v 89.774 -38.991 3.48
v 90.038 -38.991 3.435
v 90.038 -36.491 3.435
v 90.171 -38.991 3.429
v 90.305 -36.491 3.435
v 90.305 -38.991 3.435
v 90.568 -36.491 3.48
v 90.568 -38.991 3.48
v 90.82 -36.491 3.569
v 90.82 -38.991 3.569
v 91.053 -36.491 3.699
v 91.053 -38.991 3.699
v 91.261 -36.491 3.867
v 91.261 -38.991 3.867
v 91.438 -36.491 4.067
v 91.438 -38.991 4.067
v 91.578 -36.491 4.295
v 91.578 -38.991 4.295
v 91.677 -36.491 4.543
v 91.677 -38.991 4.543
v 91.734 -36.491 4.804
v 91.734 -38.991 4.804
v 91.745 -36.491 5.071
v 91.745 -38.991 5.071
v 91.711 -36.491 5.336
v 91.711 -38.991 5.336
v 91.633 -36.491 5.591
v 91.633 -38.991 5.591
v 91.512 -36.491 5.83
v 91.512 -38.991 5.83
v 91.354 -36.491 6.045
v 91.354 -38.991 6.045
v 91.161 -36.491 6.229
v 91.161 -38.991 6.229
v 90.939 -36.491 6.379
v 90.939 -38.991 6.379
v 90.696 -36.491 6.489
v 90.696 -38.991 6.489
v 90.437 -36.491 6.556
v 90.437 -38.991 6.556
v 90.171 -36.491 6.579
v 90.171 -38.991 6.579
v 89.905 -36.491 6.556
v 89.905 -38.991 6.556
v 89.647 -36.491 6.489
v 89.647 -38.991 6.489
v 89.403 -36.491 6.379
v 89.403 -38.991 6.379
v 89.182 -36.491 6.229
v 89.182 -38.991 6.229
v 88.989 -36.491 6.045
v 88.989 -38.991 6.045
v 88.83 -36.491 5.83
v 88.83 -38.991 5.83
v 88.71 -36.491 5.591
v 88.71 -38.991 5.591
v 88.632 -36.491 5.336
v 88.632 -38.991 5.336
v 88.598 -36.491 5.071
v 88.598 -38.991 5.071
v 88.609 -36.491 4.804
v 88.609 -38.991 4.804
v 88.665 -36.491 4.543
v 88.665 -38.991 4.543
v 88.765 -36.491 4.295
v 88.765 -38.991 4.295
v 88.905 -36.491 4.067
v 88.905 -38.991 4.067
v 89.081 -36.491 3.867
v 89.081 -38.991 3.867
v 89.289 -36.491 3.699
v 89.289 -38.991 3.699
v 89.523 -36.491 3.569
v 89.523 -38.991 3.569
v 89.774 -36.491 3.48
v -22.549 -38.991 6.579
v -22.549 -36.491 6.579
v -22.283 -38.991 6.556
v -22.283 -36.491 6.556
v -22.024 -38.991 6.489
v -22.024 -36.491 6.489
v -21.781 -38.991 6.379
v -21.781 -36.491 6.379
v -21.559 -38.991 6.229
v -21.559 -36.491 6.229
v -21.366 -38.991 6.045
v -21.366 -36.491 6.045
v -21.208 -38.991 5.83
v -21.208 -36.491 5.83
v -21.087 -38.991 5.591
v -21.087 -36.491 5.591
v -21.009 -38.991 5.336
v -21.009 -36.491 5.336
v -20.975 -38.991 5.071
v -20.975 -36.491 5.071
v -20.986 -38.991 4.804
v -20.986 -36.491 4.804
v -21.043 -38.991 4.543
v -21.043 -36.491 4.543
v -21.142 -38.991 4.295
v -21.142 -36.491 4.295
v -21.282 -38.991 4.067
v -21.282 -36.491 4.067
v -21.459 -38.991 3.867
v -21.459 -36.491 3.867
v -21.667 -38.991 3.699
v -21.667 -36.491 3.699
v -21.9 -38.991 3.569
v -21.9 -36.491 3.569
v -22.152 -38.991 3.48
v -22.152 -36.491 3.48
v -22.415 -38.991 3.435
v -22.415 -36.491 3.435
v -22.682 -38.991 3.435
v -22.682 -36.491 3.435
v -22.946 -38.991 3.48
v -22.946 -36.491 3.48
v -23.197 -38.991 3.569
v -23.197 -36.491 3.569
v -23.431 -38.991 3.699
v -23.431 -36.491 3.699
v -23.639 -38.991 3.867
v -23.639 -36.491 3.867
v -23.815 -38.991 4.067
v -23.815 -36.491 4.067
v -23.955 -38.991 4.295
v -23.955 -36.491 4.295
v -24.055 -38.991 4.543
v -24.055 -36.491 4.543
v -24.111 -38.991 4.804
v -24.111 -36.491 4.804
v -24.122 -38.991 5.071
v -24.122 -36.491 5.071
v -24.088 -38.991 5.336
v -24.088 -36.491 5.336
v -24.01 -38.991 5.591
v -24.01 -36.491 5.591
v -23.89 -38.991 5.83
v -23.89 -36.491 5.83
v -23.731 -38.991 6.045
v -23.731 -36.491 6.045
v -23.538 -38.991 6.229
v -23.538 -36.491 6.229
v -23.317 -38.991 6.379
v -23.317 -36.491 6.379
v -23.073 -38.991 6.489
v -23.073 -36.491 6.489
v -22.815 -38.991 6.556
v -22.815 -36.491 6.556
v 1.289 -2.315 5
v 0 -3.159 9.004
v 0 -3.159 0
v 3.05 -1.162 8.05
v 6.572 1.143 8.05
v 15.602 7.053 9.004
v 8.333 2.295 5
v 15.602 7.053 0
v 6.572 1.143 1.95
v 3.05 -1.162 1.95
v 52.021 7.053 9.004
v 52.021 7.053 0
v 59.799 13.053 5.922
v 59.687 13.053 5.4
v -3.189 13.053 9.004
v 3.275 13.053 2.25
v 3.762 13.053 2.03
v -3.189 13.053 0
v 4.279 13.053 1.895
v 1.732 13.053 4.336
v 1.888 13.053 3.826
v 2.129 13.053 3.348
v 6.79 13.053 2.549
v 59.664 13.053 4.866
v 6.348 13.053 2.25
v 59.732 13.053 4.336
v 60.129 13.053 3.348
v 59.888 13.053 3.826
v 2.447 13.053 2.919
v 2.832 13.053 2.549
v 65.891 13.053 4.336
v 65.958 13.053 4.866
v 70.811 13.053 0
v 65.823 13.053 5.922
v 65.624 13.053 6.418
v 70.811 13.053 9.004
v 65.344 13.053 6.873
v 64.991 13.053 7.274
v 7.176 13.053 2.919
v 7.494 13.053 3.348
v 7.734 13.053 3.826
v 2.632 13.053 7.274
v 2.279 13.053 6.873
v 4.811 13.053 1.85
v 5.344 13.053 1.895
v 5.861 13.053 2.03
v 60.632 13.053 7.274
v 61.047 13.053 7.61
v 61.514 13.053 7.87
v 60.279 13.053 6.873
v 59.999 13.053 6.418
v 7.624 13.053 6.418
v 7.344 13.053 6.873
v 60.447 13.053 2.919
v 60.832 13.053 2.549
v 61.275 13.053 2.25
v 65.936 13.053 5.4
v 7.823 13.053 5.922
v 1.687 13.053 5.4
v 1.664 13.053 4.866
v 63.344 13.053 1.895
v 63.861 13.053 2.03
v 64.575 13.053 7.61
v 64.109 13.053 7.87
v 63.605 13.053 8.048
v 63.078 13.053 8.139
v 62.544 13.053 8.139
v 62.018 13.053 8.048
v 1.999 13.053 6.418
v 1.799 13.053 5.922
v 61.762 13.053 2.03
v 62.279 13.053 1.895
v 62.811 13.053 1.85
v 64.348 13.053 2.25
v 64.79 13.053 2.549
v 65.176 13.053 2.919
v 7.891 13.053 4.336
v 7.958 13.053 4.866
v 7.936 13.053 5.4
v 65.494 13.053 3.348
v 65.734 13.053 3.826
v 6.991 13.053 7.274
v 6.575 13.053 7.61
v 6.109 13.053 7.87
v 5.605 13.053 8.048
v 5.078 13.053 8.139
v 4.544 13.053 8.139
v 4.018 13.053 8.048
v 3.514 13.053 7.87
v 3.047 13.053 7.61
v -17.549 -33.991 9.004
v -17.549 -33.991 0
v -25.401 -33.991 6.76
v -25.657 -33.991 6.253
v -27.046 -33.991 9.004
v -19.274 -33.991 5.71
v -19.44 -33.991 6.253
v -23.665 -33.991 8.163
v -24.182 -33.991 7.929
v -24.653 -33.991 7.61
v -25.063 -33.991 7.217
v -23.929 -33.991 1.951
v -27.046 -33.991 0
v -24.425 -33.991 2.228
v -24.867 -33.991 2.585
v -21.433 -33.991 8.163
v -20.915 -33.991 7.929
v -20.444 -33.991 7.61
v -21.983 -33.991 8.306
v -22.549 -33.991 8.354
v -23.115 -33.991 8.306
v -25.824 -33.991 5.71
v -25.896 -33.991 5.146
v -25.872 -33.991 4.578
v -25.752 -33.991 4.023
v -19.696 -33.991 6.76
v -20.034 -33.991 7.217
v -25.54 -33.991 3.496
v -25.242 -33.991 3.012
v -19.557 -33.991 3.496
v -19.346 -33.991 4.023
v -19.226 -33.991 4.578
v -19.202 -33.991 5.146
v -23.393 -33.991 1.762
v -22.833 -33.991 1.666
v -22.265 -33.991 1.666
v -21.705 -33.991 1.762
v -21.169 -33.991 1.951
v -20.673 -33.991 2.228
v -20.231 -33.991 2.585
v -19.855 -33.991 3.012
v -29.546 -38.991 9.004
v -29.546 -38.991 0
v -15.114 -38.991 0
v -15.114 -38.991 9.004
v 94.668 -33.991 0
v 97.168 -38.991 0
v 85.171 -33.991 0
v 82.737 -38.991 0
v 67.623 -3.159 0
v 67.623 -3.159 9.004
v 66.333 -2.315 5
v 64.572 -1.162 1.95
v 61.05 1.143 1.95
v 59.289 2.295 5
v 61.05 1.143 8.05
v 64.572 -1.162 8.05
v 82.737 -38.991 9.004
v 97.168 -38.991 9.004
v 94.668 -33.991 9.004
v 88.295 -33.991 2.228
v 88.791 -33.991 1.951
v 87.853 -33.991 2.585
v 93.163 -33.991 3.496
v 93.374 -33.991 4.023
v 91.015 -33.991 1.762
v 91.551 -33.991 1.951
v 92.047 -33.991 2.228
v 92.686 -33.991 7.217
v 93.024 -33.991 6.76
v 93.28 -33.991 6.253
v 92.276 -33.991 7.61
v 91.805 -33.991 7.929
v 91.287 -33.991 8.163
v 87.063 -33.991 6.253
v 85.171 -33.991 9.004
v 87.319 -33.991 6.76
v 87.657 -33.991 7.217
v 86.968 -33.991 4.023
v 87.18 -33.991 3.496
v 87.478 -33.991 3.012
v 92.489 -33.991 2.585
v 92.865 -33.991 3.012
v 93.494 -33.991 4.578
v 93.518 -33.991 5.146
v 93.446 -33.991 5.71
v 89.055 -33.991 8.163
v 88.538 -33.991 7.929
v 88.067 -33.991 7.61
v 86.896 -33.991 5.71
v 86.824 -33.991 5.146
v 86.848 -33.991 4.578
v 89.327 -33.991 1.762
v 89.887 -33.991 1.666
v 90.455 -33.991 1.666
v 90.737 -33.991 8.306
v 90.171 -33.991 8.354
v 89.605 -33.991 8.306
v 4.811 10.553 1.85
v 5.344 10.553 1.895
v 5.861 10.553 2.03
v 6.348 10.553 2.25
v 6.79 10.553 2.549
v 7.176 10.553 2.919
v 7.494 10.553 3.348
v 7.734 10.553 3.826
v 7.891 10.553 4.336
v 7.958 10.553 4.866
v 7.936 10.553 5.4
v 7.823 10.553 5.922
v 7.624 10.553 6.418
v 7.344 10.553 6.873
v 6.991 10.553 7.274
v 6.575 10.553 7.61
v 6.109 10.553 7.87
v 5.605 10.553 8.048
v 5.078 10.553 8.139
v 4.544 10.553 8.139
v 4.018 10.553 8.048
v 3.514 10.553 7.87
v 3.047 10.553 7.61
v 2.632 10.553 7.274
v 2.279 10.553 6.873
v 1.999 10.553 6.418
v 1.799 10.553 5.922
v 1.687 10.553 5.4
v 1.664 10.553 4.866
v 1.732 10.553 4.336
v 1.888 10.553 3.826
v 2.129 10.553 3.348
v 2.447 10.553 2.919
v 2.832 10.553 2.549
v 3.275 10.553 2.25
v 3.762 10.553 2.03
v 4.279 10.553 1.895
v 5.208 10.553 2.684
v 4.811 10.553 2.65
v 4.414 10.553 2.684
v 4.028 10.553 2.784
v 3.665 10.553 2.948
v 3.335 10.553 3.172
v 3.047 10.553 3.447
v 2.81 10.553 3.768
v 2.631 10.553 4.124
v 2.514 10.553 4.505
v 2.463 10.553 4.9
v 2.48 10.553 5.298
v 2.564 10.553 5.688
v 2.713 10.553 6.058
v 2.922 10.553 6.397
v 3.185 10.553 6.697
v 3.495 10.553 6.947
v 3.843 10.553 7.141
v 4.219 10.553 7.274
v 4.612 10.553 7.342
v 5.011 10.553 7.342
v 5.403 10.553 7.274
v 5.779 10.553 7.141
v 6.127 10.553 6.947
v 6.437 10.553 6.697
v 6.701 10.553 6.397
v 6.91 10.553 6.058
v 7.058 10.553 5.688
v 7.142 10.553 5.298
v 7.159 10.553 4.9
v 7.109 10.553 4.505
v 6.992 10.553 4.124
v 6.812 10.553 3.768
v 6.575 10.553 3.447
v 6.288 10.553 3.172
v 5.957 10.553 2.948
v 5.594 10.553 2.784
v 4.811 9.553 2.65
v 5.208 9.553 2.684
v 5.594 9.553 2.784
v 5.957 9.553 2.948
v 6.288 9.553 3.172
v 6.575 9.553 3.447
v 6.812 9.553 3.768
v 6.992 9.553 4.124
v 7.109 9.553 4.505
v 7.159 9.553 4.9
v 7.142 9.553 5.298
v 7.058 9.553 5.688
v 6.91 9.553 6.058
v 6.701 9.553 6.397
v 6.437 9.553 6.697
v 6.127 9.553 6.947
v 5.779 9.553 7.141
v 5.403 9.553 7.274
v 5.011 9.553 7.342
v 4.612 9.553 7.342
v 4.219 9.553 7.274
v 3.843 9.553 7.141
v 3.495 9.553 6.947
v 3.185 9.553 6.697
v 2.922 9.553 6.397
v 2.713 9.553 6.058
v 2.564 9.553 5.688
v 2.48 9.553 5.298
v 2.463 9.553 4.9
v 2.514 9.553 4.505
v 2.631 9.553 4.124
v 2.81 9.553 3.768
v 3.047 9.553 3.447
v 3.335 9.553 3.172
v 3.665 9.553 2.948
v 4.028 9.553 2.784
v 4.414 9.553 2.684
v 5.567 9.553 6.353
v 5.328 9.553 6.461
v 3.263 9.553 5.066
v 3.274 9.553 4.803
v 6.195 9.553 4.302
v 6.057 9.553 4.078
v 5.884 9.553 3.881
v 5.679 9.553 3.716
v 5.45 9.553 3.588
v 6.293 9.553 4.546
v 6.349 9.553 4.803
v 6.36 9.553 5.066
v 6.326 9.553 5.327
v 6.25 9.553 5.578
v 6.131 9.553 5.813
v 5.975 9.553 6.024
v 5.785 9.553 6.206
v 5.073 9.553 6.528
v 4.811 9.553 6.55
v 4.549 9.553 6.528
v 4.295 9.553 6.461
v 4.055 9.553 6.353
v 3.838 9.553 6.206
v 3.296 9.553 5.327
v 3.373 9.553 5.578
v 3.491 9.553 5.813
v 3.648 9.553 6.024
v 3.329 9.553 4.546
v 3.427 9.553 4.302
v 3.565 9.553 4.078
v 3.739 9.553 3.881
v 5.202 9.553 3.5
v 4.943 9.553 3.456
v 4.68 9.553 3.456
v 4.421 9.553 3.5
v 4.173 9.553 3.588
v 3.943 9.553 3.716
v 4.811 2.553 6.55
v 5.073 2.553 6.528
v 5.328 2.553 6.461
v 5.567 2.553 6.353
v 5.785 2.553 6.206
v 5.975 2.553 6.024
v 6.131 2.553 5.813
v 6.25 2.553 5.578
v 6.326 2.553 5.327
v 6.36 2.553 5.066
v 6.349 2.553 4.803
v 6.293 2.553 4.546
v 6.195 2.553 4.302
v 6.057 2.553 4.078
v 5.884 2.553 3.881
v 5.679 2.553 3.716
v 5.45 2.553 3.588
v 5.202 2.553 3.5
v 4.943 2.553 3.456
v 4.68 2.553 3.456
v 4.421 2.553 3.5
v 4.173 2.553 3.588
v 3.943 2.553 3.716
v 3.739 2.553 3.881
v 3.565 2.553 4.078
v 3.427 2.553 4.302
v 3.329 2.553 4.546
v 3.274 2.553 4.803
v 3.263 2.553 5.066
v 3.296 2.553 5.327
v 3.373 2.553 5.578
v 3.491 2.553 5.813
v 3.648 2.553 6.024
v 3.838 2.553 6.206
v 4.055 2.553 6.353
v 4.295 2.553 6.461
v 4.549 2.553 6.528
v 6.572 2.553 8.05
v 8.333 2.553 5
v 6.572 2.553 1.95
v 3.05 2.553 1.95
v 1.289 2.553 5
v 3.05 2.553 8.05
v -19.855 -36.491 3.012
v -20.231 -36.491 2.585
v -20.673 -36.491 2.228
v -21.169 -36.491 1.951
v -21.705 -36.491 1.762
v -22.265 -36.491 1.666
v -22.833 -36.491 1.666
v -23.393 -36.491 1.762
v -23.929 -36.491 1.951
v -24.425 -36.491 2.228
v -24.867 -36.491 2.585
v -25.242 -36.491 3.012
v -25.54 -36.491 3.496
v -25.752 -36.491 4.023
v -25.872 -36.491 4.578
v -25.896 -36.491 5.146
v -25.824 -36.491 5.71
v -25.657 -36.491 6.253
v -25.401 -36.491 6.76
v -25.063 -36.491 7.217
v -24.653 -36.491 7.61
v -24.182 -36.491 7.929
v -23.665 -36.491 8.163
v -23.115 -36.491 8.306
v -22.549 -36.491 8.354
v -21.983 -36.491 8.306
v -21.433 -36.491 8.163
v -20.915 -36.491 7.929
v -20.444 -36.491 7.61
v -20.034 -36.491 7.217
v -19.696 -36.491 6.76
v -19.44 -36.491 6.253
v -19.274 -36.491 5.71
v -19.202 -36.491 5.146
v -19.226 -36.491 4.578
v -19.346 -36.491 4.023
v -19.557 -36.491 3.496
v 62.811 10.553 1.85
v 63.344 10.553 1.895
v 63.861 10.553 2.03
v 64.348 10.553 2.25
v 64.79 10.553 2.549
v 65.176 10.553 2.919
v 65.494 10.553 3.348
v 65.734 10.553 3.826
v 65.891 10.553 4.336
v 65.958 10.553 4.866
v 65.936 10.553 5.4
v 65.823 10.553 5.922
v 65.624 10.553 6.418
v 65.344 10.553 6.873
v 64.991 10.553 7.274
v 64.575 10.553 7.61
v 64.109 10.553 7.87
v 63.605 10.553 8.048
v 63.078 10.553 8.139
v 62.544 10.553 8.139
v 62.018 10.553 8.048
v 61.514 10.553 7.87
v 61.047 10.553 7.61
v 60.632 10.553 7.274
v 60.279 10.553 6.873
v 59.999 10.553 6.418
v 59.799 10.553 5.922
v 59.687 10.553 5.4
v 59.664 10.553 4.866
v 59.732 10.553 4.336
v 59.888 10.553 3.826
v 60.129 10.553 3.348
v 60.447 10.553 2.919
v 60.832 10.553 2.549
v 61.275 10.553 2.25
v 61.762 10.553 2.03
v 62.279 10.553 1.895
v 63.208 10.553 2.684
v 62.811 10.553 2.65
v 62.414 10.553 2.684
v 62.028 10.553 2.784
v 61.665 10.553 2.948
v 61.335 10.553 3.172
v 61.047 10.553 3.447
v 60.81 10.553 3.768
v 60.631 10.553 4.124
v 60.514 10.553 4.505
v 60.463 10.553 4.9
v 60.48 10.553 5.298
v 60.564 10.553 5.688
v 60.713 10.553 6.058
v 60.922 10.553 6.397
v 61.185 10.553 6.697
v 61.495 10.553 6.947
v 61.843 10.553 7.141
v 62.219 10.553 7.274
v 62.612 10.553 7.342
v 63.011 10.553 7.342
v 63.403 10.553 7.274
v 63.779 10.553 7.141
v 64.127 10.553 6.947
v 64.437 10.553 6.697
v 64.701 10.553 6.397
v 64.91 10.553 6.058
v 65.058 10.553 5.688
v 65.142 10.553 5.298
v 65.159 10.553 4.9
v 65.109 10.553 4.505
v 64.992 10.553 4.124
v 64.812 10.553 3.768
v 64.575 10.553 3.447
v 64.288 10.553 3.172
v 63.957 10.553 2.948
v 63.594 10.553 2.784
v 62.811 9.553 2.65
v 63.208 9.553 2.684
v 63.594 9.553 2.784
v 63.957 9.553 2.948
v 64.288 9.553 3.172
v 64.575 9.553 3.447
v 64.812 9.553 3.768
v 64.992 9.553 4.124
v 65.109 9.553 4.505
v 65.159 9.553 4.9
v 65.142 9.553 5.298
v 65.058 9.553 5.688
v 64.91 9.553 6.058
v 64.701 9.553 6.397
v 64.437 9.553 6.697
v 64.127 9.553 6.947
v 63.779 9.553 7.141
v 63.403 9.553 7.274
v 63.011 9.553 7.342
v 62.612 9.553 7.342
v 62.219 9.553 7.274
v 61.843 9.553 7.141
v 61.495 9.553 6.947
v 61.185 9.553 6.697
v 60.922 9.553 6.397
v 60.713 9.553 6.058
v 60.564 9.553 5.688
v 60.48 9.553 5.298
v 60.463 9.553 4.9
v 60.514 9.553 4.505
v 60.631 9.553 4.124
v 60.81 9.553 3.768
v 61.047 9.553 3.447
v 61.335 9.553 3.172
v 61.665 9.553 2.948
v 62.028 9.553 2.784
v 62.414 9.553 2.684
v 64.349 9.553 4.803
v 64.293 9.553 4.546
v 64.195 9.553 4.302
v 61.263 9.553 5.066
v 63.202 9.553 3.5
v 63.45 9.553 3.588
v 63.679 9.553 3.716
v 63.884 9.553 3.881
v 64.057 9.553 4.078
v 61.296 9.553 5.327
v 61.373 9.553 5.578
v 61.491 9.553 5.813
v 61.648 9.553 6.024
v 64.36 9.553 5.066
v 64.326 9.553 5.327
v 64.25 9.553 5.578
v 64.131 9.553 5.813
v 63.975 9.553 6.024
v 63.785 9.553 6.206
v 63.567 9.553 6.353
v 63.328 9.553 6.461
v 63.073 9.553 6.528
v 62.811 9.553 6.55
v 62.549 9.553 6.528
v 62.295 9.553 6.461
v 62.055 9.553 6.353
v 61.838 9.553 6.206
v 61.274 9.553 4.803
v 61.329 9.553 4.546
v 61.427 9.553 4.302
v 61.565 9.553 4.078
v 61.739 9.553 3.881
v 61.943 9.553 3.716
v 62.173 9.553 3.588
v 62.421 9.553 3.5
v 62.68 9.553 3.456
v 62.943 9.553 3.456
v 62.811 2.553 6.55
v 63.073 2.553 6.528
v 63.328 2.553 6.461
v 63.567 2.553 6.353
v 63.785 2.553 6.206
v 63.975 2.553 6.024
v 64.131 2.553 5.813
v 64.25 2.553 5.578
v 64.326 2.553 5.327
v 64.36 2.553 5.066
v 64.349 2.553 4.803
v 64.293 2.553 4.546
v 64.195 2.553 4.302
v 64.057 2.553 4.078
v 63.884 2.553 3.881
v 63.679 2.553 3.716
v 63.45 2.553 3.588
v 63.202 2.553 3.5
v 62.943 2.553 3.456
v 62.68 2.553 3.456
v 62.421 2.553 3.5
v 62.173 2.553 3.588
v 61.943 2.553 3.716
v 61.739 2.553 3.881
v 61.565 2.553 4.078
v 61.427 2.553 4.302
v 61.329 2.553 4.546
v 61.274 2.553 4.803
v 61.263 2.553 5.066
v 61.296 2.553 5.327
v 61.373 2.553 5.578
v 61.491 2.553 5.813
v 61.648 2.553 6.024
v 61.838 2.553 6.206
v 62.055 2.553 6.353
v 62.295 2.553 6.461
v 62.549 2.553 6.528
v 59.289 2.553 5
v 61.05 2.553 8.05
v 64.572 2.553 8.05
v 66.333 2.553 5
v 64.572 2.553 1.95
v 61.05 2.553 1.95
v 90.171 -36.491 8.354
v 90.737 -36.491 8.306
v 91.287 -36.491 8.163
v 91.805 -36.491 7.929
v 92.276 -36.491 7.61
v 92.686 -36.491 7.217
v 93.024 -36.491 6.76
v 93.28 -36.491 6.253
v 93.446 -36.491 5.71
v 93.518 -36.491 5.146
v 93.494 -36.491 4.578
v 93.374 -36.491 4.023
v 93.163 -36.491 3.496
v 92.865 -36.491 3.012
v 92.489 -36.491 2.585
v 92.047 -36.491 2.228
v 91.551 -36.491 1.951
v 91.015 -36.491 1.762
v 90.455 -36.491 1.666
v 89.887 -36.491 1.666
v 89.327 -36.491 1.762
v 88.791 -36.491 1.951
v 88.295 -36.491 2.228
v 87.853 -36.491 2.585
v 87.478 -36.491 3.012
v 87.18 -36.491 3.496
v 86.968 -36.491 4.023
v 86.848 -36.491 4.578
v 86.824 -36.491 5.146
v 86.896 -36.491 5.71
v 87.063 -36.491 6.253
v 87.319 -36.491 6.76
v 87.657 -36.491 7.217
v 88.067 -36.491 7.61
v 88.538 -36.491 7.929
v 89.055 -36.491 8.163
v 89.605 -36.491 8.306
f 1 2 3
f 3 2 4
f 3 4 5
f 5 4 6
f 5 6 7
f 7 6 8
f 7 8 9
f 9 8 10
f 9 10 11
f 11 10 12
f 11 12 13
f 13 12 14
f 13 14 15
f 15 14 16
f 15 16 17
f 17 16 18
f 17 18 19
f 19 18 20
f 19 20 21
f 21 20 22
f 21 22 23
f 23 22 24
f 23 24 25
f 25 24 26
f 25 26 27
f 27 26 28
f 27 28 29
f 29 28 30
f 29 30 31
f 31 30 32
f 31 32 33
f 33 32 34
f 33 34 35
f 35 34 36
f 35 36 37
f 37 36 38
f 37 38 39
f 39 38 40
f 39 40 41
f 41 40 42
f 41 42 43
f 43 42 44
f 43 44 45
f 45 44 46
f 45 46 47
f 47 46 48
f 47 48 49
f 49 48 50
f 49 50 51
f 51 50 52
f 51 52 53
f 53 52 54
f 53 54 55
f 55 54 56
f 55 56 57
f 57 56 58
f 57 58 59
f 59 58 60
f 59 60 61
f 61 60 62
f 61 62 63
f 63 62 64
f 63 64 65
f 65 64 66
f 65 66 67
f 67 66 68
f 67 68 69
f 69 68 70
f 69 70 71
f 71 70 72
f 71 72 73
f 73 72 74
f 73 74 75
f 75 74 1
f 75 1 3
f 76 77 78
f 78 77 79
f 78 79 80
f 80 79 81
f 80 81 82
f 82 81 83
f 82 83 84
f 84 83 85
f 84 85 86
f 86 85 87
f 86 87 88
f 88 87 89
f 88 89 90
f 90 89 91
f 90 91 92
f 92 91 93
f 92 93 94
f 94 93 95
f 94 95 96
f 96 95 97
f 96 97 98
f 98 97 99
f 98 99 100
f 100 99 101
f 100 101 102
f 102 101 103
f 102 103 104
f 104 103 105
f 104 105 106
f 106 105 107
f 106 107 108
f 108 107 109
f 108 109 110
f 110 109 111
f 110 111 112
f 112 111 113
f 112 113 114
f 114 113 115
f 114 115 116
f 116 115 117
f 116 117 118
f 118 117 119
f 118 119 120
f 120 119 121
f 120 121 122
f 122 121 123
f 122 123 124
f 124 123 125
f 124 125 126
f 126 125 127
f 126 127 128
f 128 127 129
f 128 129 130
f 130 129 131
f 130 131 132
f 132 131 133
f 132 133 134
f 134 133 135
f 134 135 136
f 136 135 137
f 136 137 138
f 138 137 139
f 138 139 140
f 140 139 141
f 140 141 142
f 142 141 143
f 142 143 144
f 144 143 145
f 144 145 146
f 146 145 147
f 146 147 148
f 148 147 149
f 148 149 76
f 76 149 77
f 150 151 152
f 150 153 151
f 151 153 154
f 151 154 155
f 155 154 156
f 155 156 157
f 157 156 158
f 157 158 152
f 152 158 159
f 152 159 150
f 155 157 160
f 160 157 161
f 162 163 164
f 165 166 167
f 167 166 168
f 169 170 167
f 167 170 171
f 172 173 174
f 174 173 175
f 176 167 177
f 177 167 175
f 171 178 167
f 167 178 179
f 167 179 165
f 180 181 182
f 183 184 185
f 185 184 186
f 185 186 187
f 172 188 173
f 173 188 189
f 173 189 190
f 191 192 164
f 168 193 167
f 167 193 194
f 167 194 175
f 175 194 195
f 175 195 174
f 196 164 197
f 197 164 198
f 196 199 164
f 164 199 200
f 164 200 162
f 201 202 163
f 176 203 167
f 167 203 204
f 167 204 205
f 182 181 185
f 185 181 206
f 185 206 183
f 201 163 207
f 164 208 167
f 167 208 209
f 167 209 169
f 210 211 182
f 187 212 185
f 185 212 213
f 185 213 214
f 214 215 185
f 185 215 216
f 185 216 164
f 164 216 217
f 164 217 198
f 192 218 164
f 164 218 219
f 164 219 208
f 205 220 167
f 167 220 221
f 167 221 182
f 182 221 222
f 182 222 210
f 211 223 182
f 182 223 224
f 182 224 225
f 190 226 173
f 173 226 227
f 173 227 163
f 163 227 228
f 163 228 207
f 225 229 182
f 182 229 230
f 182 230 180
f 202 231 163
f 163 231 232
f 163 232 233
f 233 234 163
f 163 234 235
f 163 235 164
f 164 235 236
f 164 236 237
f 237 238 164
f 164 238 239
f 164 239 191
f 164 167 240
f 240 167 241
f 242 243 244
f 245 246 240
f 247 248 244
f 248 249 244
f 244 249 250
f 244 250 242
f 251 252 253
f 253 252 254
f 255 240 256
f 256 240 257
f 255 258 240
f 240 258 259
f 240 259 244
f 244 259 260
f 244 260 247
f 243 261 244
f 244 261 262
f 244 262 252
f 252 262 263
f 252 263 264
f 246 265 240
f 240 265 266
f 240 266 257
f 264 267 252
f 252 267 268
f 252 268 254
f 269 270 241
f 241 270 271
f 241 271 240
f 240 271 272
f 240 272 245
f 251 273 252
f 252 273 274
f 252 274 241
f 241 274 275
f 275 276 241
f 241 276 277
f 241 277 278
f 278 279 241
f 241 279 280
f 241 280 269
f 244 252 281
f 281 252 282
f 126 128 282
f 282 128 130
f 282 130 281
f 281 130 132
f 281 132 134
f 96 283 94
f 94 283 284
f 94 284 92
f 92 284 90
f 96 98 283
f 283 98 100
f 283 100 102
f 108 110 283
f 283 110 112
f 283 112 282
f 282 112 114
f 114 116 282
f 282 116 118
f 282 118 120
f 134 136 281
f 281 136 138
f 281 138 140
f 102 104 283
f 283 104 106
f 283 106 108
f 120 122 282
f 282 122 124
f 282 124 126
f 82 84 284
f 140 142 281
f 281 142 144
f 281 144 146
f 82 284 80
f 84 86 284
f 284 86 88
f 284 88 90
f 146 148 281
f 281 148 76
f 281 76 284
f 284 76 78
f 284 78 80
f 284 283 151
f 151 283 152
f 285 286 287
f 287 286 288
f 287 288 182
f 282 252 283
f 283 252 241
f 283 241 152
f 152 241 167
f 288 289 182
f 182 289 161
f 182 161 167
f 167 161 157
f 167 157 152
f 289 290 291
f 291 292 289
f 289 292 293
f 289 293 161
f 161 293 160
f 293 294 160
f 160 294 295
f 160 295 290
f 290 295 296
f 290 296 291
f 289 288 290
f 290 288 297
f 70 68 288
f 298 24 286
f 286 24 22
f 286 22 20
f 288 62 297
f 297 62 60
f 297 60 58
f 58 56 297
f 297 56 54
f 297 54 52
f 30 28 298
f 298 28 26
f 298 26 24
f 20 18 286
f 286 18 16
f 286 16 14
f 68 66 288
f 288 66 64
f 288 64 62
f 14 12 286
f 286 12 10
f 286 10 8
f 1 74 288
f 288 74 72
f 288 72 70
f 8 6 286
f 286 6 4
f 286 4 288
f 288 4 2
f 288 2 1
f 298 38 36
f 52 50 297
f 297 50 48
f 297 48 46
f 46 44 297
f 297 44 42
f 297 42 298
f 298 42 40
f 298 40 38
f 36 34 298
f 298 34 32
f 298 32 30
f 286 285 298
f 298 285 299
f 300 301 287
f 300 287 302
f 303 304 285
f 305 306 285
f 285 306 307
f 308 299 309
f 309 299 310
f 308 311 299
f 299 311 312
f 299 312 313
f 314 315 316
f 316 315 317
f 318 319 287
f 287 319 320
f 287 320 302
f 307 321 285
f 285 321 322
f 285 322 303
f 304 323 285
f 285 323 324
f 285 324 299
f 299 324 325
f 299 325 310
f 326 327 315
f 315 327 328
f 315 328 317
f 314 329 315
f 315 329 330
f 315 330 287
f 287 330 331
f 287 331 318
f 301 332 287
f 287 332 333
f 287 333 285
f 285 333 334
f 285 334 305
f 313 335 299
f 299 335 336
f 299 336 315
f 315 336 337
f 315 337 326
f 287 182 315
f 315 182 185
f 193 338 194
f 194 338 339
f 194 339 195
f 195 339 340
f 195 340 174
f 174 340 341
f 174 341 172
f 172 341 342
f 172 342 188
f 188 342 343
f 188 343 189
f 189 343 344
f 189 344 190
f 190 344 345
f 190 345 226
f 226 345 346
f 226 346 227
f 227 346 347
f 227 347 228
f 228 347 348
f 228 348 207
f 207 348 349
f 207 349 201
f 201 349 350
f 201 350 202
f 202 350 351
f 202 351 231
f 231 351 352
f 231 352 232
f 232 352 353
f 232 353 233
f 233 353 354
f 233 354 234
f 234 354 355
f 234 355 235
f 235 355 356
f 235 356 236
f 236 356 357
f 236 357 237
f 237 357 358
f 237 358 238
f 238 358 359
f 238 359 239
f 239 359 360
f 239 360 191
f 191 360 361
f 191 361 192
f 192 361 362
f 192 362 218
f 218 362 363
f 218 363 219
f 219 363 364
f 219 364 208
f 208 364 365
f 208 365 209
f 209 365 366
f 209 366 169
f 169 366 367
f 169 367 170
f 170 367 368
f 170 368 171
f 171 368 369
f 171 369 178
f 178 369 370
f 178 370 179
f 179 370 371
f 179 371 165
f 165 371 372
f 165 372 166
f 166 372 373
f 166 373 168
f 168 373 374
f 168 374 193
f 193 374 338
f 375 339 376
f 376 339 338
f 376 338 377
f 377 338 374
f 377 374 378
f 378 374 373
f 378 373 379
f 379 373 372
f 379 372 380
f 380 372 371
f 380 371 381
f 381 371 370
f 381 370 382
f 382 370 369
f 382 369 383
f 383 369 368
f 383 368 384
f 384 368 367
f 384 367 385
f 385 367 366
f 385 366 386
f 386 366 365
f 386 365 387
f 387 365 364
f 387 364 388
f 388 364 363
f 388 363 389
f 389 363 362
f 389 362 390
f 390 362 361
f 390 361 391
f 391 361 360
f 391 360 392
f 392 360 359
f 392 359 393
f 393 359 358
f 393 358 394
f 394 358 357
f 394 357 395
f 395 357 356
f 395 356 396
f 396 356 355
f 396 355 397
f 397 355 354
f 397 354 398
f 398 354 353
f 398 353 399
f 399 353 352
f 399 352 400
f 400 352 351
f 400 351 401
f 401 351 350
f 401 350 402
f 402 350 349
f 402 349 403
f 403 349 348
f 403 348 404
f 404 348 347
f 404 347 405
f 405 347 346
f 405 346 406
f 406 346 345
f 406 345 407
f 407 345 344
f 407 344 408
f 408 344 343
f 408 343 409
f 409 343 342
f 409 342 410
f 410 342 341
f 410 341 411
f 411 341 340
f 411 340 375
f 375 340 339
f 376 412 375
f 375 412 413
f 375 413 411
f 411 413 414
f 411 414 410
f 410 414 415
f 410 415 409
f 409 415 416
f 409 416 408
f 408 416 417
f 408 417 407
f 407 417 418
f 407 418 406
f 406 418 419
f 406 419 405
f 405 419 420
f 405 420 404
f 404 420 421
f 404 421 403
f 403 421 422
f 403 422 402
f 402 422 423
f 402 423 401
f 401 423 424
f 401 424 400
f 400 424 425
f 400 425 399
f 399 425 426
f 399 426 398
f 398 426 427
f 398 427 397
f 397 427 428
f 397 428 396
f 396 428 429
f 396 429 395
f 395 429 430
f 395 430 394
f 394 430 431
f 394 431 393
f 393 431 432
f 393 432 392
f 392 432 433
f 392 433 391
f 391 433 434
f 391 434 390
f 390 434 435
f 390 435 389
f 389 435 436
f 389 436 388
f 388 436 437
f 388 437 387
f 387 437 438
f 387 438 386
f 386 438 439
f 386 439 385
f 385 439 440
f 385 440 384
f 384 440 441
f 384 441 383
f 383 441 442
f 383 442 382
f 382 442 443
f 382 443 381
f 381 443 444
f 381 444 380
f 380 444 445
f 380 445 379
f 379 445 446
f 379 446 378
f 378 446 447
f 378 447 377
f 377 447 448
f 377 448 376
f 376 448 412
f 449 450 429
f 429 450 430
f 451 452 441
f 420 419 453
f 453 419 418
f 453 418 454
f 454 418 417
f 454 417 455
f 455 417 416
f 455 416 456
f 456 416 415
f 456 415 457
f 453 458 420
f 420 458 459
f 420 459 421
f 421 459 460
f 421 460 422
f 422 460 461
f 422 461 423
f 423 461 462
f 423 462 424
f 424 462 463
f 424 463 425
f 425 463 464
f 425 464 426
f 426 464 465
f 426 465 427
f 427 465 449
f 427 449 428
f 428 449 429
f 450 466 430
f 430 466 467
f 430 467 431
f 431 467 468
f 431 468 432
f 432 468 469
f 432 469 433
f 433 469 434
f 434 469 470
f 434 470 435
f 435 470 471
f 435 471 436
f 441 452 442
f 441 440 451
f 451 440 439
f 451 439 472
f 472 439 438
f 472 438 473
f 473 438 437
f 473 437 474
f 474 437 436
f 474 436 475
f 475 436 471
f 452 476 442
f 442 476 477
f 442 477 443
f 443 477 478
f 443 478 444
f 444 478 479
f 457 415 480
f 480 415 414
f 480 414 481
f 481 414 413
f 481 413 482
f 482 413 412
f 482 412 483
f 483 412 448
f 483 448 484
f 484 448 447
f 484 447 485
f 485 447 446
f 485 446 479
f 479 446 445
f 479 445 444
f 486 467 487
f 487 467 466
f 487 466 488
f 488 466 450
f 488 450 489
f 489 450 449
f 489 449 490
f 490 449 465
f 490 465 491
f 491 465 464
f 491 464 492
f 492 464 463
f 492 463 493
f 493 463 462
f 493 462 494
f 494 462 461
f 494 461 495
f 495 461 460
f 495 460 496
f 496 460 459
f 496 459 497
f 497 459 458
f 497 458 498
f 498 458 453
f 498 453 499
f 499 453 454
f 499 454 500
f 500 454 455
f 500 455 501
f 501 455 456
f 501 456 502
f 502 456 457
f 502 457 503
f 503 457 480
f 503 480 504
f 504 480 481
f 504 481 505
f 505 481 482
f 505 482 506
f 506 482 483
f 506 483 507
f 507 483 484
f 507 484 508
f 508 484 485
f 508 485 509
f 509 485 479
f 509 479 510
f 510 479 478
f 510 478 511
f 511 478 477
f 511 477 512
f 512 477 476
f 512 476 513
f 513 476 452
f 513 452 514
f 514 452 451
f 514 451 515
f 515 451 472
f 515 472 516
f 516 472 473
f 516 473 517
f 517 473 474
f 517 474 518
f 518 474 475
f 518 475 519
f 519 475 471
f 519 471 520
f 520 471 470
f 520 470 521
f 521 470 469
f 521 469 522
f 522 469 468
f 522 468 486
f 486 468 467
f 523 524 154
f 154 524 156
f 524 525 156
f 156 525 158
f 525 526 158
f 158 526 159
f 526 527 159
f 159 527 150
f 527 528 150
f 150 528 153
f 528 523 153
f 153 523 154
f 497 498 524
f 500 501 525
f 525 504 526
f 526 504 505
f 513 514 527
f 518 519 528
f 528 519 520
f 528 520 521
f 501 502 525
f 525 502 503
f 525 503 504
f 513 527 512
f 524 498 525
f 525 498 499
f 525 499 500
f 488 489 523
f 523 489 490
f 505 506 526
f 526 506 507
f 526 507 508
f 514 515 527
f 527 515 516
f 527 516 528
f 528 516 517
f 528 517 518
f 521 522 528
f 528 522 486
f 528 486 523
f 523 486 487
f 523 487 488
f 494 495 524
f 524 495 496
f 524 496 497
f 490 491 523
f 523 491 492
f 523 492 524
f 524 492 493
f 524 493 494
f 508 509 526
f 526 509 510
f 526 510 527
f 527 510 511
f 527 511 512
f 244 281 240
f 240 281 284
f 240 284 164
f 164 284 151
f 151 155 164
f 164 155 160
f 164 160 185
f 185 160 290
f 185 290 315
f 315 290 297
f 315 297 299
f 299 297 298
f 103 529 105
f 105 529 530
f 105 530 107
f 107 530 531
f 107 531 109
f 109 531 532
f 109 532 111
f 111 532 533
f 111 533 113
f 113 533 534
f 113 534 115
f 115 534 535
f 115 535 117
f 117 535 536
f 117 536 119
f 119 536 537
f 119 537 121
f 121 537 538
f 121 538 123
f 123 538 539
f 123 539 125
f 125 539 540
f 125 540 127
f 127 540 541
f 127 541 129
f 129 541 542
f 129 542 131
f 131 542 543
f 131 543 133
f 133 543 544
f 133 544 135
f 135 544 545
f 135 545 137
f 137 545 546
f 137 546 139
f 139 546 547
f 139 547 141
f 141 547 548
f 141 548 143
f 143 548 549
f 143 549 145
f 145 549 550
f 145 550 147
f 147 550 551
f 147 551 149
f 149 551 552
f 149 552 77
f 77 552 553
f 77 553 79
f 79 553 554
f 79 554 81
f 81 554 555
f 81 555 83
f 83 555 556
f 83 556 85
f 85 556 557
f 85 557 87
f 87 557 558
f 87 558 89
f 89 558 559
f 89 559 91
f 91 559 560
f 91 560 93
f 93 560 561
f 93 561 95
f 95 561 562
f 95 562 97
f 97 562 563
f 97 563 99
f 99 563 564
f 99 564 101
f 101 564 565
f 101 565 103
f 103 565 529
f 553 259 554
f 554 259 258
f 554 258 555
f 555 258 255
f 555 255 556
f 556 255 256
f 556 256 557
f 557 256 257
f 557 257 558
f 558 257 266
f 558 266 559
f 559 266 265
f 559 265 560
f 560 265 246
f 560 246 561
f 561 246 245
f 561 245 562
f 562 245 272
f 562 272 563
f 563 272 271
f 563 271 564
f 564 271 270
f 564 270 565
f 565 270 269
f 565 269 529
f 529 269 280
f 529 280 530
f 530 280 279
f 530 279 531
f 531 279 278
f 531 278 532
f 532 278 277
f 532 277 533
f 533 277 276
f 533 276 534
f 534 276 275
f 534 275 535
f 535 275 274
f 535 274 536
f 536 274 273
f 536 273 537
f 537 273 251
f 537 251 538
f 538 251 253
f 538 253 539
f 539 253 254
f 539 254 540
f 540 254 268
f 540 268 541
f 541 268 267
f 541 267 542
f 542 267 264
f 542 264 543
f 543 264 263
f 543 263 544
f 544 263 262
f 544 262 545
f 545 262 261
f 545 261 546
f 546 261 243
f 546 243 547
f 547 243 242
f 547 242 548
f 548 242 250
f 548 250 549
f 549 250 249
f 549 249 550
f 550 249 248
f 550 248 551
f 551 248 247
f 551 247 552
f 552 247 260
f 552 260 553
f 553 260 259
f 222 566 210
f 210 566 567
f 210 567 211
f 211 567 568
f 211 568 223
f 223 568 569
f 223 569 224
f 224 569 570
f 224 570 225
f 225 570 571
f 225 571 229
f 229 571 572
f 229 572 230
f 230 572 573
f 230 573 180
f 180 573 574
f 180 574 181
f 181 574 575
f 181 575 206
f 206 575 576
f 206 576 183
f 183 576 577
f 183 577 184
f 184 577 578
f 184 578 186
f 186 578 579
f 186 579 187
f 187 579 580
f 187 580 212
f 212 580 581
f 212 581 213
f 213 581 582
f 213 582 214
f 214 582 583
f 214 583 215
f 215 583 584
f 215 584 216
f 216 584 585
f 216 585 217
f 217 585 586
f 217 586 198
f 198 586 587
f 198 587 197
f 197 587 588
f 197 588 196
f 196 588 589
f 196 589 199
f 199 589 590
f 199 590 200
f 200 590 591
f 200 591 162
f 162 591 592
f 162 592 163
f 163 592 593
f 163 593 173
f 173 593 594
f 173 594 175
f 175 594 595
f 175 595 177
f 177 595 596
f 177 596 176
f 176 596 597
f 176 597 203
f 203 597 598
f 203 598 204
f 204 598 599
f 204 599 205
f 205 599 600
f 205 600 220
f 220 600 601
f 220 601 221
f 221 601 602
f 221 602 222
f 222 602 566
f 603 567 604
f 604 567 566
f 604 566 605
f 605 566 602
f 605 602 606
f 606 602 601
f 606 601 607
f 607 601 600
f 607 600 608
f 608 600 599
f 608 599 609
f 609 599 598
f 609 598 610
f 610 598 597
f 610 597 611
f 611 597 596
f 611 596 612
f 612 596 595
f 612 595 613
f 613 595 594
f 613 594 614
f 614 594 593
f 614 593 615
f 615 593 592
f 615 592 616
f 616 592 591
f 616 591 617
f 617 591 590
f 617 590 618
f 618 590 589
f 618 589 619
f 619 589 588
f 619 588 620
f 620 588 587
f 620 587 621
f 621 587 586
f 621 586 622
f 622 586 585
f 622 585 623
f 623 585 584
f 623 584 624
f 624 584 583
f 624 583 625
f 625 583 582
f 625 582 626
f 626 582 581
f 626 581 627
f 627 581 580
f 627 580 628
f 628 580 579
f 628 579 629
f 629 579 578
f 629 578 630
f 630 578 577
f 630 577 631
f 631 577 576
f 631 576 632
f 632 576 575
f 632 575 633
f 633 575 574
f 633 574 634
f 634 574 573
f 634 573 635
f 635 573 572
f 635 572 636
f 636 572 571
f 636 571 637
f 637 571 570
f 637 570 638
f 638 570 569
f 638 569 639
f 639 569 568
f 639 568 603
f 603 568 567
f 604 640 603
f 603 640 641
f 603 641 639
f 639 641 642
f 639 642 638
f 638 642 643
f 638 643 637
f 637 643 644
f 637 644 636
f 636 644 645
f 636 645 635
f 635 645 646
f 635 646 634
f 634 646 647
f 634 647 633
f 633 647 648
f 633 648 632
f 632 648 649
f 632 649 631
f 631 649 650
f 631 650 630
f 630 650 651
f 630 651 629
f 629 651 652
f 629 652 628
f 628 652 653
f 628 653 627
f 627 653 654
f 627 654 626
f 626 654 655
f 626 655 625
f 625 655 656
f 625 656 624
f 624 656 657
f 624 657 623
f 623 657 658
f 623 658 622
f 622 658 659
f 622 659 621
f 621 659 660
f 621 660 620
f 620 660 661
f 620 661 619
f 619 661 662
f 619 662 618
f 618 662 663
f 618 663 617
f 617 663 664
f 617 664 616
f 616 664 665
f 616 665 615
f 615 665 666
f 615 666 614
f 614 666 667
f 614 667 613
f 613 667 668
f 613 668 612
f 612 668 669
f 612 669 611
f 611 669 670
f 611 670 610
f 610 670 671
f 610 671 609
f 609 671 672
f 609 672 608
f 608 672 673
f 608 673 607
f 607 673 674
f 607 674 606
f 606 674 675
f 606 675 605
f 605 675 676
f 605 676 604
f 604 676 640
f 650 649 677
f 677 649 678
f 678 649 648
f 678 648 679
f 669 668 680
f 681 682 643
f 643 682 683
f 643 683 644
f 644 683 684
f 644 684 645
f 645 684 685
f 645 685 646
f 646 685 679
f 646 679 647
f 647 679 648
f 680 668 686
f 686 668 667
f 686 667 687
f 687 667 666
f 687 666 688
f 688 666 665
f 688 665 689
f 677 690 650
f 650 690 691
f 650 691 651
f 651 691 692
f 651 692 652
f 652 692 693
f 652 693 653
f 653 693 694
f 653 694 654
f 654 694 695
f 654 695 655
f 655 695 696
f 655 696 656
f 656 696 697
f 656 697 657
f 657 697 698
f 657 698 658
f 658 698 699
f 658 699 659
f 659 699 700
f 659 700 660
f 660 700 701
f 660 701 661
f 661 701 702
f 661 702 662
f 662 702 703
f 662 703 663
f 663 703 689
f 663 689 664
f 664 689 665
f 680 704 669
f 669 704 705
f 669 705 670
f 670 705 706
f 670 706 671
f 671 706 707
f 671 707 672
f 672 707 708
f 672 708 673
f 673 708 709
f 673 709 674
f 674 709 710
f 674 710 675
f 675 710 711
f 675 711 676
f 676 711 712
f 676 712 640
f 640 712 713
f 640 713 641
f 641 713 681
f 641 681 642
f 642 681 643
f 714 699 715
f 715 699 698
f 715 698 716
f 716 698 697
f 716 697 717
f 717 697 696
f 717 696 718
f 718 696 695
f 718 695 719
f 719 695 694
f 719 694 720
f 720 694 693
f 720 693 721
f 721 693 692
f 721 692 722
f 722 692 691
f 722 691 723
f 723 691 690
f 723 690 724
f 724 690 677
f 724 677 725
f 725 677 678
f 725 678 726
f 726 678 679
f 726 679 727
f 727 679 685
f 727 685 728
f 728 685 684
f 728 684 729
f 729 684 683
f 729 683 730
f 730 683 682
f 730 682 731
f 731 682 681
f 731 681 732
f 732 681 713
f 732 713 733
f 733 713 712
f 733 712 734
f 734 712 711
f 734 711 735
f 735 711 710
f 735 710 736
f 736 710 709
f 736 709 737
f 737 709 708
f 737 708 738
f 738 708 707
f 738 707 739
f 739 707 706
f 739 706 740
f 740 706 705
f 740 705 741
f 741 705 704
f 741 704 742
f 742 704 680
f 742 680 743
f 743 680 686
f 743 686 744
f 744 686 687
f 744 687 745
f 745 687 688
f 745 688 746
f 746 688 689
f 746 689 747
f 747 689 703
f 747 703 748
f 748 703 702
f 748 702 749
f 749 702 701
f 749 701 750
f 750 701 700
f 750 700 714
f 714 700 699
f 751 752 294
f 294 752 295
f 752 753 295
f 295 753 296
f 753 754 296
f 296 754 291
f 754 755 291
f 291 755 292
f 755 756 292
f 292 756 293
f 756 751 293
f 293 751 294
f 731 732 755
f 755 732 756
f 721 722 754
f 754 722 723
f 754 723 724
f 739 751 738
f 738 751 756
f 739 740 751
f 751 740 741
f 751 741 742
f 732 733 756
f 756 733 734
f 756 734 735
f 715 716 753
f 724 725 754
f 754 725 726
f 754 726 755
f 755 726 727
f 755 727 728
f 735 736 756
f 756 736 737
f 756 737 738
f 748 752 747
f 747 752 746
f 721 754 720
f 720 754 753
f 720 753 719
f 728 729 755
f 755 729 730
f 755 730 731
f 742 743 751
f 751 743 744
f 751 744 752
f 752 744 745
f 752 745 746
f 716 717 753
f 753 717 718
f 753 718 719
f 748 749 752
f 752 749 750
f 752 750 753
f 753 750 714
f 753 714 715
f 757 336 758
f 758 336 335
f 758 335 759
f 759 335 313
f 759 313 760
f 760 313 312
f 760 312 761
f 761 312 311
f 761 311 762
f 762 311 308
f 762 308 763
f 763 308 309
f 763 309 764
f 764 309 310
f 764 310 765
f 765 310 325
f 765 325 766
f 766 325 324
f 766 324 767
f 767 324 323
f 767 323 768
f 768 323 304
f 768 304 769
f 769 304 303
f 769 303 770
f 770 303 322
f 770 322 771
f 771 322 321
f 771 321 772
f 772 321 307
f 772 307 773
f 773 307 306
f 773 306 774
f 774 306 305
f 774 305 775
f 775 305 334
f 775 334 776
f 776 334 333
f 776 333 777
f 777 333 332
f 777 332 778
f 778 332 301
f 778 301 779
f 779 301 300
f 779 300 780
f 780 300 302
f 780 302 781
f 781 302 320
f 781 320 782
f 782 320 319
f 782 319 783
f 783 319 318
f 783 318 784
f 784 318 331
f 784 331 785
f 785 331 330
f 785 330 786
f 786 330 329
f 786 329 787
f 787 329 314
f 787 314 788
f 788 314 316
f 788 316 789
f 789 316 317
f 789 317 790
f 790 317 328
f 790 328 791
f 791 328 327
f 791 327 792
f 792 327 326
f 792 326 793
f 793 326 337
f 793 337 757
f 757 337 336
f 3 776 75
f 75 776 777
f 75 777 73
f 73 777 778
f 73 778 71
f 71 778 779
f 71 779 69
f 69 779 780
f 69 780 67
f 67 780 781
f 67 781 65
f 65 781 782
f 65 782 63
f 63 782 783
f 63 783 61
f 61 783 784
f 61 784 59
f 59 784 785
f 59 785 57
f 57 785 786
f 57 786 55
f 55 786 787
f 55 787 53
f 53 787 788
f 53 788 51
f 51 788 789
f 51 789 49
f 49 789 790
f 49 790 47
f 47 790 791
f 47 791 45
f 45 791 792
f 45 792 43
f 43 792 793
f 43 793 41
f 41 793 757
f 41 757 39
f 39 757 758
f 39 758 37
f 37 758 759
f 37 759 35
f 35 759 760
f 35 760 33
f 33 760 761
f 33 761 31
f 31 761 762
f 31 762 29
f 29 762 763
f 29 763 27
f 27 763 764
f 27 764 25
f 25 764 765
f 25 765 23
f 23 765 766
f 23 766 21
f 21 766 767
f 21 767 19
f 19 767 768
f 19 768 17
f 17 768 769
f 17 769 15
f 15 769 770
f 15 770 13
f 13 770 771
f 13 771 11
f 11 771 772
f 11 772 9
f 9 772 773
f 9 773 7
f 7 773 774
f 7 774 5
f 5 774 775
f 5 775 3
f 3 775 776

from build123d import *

# Parameters (mm, degrees)
EXTRUDE_1_DEPTH      = 10
SKETCH_7_R           = 1.55
CUT_EXTRUDE_1_DEPTH  = 49.544157215
CUT_EXTRUDE_2_DEPTH  = 8.5
SKETCH_19_W          = 126.714157214
SKETCH_19_H          = 0.99604336
CUT_EXTRUDE_14_DEPTH = 53.044157215
SKETCH_22_R          = 1.575
CUT_EXTRUDE_15_DEPTH = 10
SKETCH_23_R          = 3.35
CUT_EXTRUDE_16_DEPTH = 2.5


with BuildPart() as part:
    # 草图1 → 凸台-拉伸1 (new body)
    with BuildSketch(Plane.XY):
        Polygon((-3.188712924, 13.052848472), (33.811287076, 13.052848472), (33.811287076, 7.052848472), (15.60198174, 7.052848472), (0, -3.158579815), (-15.114428715, -38.991308743), (-29.545791531, -38.991308743), (-27.045791531, -33.991308743), (-17.548712924, -33.991308743), align=None)
    extrude_1 = extrude(amount=EXTRUDE_1_DEPTH)

    # 镜向1: 凸台-拉伸1 across plane
    add(extrude_1.mirror(Plane(origin=(33.811287076, 13.052848472, 10), x_dir=(0, 0, 1), z_dir=(-1, 0, 0))))

    # 草图5 → 切除-旋转7 (revolve, cut)
    with BuildSketch(Plane.XY.offset(5)):
        Polygon((7.961287076, 13.052848472), (7.961287076, 10.552848472), (7.161287076, 10.552848472), (7.161287076, 9.552848472), (6.361287076, 9.552848472), (4.811287076, 9.552848472), (4.811287076, 13.052848472), align=None)
    cut_revolve_7 = revolve(axis=Axis((4.811287076, 9.552848472, 5), (0, 1, 0)), mode=Mode.SUBTRACT)

    # 草图7 → 切除-拉伸1 (cut, through all)
    with BuildSketch(Plane(origin=(0, 9.552848472, 0), x_dir=(1, 0, 0), z_dir=(0, 1, 0))):
        with Locations((4.811287076, -5)):
            Circle(SKETCH_7_R)
    cut_extrude_1 = extrude(amount=-CUT_EXTRUDE_1_DEPTH, mode=Mode.SUBTRACT)

    # 草图8 → 切除-拉伸2 (cut)
    with BuildSketch(Plane(origin=(0, -5.947151528, 0), x_dir=(1, 0, 0), z_dir=(0, 1, 0))):
        Polygon((8.333123718, -5), (6.572205397, -1.95), (3.050368755, -1.95), (1.289450434, -5), (3.050368755, -8.05), (6.572205397, -8.05), align=None)
    cut_extrude_2 = extrude(amount=CUT_EXTRUDE_2_DEPTH, mode=Mode.SUBTRACT)

    # 草图19 → 切除-拉伸14 (cut, through all)
    with BuildSketch(Plane(origin=(0, 13.052848472, 0), x_dir=(1, 0, 0), z_dir=(0, 1, 0))):
        with Locations((33.811287076, -9.50197832)):
            Rectangle(SKETCH_19_W, SKETCH_19_H)
    extrude(amount=-CUT_EXTRUDE_14_DEPTH, mode=Mode.SUBTRACT)

    # 草图22 → 切除-拉伸15 (cut)
    with BuildSketch(Plane(origin=(0, -33.991308743, 0), x_dir=(1, 0, 0), z_dir=(0, 1, 0))):
        with Locations((-22.548712924, -5.00395664)):
            Circle(SKETCH_22_R)
    cut_extrude_15 = extrude(amount=-CUT_EXTRUDE_15_DEPTH, mode=Mode.SUBTRACT)

    # 草图23 → 切除-拉伸16 (cut)
    with BuildSketch(Plane(origin=(0, -33.991308743, 0), x_dir=(1, 0, 0), z_dir=(0, 1, 0))):
        with Locations((-22.548712924, -5.00395664)):
            Circle(SKETCH_23_R)
    cut_extrude_16 = extrude(amount=-CUT_EXTRUDE_16_DEPTH, mode=Mode.SUBTRACT)

    # 镜向2: 切除-旋转7, 切除-拉伸1, 切除-拉伸2, 切除-拉伸15, 切除-拉伸16 across plane
    add(cut_revolve_7.mirror(Plane(origin=(33.811287076, 0, 0), x_dir=(0, 0, 1), z_dir=(1, 0, 0))), mode=Mode.SUBTRACT)
    add(cut_extrude_1.mirror(Plane(origin=(33.811287076, 0, 0), x_dir=(0, 0, 1), z_dir=(1, 0, 0))), mode=Mode.SUBTRACT)
    add(cut_extrude_2.mirror(Plane(origin=(33.811287076, 0, 0), x_dir=(0, 0, 1), z_dir=(1, 0, 0))), mode=Mode.SUBTRACT)
    add(cut_extrude_15.mirror(Plane(origin=(33.811287076, 0, 0), x_dir=(0, 0, 1), z_dir=(1, 0, 0))), mode=Mode.SUBTRACT)
    add(cut_extrude_16.mirror(Plane(origin=(33.811287076, 0, 0), x_dir=(0, 0, 1), z_dir=(1, 0, 0))), mode=Mode.SUBTRACT)


solid = part.part
